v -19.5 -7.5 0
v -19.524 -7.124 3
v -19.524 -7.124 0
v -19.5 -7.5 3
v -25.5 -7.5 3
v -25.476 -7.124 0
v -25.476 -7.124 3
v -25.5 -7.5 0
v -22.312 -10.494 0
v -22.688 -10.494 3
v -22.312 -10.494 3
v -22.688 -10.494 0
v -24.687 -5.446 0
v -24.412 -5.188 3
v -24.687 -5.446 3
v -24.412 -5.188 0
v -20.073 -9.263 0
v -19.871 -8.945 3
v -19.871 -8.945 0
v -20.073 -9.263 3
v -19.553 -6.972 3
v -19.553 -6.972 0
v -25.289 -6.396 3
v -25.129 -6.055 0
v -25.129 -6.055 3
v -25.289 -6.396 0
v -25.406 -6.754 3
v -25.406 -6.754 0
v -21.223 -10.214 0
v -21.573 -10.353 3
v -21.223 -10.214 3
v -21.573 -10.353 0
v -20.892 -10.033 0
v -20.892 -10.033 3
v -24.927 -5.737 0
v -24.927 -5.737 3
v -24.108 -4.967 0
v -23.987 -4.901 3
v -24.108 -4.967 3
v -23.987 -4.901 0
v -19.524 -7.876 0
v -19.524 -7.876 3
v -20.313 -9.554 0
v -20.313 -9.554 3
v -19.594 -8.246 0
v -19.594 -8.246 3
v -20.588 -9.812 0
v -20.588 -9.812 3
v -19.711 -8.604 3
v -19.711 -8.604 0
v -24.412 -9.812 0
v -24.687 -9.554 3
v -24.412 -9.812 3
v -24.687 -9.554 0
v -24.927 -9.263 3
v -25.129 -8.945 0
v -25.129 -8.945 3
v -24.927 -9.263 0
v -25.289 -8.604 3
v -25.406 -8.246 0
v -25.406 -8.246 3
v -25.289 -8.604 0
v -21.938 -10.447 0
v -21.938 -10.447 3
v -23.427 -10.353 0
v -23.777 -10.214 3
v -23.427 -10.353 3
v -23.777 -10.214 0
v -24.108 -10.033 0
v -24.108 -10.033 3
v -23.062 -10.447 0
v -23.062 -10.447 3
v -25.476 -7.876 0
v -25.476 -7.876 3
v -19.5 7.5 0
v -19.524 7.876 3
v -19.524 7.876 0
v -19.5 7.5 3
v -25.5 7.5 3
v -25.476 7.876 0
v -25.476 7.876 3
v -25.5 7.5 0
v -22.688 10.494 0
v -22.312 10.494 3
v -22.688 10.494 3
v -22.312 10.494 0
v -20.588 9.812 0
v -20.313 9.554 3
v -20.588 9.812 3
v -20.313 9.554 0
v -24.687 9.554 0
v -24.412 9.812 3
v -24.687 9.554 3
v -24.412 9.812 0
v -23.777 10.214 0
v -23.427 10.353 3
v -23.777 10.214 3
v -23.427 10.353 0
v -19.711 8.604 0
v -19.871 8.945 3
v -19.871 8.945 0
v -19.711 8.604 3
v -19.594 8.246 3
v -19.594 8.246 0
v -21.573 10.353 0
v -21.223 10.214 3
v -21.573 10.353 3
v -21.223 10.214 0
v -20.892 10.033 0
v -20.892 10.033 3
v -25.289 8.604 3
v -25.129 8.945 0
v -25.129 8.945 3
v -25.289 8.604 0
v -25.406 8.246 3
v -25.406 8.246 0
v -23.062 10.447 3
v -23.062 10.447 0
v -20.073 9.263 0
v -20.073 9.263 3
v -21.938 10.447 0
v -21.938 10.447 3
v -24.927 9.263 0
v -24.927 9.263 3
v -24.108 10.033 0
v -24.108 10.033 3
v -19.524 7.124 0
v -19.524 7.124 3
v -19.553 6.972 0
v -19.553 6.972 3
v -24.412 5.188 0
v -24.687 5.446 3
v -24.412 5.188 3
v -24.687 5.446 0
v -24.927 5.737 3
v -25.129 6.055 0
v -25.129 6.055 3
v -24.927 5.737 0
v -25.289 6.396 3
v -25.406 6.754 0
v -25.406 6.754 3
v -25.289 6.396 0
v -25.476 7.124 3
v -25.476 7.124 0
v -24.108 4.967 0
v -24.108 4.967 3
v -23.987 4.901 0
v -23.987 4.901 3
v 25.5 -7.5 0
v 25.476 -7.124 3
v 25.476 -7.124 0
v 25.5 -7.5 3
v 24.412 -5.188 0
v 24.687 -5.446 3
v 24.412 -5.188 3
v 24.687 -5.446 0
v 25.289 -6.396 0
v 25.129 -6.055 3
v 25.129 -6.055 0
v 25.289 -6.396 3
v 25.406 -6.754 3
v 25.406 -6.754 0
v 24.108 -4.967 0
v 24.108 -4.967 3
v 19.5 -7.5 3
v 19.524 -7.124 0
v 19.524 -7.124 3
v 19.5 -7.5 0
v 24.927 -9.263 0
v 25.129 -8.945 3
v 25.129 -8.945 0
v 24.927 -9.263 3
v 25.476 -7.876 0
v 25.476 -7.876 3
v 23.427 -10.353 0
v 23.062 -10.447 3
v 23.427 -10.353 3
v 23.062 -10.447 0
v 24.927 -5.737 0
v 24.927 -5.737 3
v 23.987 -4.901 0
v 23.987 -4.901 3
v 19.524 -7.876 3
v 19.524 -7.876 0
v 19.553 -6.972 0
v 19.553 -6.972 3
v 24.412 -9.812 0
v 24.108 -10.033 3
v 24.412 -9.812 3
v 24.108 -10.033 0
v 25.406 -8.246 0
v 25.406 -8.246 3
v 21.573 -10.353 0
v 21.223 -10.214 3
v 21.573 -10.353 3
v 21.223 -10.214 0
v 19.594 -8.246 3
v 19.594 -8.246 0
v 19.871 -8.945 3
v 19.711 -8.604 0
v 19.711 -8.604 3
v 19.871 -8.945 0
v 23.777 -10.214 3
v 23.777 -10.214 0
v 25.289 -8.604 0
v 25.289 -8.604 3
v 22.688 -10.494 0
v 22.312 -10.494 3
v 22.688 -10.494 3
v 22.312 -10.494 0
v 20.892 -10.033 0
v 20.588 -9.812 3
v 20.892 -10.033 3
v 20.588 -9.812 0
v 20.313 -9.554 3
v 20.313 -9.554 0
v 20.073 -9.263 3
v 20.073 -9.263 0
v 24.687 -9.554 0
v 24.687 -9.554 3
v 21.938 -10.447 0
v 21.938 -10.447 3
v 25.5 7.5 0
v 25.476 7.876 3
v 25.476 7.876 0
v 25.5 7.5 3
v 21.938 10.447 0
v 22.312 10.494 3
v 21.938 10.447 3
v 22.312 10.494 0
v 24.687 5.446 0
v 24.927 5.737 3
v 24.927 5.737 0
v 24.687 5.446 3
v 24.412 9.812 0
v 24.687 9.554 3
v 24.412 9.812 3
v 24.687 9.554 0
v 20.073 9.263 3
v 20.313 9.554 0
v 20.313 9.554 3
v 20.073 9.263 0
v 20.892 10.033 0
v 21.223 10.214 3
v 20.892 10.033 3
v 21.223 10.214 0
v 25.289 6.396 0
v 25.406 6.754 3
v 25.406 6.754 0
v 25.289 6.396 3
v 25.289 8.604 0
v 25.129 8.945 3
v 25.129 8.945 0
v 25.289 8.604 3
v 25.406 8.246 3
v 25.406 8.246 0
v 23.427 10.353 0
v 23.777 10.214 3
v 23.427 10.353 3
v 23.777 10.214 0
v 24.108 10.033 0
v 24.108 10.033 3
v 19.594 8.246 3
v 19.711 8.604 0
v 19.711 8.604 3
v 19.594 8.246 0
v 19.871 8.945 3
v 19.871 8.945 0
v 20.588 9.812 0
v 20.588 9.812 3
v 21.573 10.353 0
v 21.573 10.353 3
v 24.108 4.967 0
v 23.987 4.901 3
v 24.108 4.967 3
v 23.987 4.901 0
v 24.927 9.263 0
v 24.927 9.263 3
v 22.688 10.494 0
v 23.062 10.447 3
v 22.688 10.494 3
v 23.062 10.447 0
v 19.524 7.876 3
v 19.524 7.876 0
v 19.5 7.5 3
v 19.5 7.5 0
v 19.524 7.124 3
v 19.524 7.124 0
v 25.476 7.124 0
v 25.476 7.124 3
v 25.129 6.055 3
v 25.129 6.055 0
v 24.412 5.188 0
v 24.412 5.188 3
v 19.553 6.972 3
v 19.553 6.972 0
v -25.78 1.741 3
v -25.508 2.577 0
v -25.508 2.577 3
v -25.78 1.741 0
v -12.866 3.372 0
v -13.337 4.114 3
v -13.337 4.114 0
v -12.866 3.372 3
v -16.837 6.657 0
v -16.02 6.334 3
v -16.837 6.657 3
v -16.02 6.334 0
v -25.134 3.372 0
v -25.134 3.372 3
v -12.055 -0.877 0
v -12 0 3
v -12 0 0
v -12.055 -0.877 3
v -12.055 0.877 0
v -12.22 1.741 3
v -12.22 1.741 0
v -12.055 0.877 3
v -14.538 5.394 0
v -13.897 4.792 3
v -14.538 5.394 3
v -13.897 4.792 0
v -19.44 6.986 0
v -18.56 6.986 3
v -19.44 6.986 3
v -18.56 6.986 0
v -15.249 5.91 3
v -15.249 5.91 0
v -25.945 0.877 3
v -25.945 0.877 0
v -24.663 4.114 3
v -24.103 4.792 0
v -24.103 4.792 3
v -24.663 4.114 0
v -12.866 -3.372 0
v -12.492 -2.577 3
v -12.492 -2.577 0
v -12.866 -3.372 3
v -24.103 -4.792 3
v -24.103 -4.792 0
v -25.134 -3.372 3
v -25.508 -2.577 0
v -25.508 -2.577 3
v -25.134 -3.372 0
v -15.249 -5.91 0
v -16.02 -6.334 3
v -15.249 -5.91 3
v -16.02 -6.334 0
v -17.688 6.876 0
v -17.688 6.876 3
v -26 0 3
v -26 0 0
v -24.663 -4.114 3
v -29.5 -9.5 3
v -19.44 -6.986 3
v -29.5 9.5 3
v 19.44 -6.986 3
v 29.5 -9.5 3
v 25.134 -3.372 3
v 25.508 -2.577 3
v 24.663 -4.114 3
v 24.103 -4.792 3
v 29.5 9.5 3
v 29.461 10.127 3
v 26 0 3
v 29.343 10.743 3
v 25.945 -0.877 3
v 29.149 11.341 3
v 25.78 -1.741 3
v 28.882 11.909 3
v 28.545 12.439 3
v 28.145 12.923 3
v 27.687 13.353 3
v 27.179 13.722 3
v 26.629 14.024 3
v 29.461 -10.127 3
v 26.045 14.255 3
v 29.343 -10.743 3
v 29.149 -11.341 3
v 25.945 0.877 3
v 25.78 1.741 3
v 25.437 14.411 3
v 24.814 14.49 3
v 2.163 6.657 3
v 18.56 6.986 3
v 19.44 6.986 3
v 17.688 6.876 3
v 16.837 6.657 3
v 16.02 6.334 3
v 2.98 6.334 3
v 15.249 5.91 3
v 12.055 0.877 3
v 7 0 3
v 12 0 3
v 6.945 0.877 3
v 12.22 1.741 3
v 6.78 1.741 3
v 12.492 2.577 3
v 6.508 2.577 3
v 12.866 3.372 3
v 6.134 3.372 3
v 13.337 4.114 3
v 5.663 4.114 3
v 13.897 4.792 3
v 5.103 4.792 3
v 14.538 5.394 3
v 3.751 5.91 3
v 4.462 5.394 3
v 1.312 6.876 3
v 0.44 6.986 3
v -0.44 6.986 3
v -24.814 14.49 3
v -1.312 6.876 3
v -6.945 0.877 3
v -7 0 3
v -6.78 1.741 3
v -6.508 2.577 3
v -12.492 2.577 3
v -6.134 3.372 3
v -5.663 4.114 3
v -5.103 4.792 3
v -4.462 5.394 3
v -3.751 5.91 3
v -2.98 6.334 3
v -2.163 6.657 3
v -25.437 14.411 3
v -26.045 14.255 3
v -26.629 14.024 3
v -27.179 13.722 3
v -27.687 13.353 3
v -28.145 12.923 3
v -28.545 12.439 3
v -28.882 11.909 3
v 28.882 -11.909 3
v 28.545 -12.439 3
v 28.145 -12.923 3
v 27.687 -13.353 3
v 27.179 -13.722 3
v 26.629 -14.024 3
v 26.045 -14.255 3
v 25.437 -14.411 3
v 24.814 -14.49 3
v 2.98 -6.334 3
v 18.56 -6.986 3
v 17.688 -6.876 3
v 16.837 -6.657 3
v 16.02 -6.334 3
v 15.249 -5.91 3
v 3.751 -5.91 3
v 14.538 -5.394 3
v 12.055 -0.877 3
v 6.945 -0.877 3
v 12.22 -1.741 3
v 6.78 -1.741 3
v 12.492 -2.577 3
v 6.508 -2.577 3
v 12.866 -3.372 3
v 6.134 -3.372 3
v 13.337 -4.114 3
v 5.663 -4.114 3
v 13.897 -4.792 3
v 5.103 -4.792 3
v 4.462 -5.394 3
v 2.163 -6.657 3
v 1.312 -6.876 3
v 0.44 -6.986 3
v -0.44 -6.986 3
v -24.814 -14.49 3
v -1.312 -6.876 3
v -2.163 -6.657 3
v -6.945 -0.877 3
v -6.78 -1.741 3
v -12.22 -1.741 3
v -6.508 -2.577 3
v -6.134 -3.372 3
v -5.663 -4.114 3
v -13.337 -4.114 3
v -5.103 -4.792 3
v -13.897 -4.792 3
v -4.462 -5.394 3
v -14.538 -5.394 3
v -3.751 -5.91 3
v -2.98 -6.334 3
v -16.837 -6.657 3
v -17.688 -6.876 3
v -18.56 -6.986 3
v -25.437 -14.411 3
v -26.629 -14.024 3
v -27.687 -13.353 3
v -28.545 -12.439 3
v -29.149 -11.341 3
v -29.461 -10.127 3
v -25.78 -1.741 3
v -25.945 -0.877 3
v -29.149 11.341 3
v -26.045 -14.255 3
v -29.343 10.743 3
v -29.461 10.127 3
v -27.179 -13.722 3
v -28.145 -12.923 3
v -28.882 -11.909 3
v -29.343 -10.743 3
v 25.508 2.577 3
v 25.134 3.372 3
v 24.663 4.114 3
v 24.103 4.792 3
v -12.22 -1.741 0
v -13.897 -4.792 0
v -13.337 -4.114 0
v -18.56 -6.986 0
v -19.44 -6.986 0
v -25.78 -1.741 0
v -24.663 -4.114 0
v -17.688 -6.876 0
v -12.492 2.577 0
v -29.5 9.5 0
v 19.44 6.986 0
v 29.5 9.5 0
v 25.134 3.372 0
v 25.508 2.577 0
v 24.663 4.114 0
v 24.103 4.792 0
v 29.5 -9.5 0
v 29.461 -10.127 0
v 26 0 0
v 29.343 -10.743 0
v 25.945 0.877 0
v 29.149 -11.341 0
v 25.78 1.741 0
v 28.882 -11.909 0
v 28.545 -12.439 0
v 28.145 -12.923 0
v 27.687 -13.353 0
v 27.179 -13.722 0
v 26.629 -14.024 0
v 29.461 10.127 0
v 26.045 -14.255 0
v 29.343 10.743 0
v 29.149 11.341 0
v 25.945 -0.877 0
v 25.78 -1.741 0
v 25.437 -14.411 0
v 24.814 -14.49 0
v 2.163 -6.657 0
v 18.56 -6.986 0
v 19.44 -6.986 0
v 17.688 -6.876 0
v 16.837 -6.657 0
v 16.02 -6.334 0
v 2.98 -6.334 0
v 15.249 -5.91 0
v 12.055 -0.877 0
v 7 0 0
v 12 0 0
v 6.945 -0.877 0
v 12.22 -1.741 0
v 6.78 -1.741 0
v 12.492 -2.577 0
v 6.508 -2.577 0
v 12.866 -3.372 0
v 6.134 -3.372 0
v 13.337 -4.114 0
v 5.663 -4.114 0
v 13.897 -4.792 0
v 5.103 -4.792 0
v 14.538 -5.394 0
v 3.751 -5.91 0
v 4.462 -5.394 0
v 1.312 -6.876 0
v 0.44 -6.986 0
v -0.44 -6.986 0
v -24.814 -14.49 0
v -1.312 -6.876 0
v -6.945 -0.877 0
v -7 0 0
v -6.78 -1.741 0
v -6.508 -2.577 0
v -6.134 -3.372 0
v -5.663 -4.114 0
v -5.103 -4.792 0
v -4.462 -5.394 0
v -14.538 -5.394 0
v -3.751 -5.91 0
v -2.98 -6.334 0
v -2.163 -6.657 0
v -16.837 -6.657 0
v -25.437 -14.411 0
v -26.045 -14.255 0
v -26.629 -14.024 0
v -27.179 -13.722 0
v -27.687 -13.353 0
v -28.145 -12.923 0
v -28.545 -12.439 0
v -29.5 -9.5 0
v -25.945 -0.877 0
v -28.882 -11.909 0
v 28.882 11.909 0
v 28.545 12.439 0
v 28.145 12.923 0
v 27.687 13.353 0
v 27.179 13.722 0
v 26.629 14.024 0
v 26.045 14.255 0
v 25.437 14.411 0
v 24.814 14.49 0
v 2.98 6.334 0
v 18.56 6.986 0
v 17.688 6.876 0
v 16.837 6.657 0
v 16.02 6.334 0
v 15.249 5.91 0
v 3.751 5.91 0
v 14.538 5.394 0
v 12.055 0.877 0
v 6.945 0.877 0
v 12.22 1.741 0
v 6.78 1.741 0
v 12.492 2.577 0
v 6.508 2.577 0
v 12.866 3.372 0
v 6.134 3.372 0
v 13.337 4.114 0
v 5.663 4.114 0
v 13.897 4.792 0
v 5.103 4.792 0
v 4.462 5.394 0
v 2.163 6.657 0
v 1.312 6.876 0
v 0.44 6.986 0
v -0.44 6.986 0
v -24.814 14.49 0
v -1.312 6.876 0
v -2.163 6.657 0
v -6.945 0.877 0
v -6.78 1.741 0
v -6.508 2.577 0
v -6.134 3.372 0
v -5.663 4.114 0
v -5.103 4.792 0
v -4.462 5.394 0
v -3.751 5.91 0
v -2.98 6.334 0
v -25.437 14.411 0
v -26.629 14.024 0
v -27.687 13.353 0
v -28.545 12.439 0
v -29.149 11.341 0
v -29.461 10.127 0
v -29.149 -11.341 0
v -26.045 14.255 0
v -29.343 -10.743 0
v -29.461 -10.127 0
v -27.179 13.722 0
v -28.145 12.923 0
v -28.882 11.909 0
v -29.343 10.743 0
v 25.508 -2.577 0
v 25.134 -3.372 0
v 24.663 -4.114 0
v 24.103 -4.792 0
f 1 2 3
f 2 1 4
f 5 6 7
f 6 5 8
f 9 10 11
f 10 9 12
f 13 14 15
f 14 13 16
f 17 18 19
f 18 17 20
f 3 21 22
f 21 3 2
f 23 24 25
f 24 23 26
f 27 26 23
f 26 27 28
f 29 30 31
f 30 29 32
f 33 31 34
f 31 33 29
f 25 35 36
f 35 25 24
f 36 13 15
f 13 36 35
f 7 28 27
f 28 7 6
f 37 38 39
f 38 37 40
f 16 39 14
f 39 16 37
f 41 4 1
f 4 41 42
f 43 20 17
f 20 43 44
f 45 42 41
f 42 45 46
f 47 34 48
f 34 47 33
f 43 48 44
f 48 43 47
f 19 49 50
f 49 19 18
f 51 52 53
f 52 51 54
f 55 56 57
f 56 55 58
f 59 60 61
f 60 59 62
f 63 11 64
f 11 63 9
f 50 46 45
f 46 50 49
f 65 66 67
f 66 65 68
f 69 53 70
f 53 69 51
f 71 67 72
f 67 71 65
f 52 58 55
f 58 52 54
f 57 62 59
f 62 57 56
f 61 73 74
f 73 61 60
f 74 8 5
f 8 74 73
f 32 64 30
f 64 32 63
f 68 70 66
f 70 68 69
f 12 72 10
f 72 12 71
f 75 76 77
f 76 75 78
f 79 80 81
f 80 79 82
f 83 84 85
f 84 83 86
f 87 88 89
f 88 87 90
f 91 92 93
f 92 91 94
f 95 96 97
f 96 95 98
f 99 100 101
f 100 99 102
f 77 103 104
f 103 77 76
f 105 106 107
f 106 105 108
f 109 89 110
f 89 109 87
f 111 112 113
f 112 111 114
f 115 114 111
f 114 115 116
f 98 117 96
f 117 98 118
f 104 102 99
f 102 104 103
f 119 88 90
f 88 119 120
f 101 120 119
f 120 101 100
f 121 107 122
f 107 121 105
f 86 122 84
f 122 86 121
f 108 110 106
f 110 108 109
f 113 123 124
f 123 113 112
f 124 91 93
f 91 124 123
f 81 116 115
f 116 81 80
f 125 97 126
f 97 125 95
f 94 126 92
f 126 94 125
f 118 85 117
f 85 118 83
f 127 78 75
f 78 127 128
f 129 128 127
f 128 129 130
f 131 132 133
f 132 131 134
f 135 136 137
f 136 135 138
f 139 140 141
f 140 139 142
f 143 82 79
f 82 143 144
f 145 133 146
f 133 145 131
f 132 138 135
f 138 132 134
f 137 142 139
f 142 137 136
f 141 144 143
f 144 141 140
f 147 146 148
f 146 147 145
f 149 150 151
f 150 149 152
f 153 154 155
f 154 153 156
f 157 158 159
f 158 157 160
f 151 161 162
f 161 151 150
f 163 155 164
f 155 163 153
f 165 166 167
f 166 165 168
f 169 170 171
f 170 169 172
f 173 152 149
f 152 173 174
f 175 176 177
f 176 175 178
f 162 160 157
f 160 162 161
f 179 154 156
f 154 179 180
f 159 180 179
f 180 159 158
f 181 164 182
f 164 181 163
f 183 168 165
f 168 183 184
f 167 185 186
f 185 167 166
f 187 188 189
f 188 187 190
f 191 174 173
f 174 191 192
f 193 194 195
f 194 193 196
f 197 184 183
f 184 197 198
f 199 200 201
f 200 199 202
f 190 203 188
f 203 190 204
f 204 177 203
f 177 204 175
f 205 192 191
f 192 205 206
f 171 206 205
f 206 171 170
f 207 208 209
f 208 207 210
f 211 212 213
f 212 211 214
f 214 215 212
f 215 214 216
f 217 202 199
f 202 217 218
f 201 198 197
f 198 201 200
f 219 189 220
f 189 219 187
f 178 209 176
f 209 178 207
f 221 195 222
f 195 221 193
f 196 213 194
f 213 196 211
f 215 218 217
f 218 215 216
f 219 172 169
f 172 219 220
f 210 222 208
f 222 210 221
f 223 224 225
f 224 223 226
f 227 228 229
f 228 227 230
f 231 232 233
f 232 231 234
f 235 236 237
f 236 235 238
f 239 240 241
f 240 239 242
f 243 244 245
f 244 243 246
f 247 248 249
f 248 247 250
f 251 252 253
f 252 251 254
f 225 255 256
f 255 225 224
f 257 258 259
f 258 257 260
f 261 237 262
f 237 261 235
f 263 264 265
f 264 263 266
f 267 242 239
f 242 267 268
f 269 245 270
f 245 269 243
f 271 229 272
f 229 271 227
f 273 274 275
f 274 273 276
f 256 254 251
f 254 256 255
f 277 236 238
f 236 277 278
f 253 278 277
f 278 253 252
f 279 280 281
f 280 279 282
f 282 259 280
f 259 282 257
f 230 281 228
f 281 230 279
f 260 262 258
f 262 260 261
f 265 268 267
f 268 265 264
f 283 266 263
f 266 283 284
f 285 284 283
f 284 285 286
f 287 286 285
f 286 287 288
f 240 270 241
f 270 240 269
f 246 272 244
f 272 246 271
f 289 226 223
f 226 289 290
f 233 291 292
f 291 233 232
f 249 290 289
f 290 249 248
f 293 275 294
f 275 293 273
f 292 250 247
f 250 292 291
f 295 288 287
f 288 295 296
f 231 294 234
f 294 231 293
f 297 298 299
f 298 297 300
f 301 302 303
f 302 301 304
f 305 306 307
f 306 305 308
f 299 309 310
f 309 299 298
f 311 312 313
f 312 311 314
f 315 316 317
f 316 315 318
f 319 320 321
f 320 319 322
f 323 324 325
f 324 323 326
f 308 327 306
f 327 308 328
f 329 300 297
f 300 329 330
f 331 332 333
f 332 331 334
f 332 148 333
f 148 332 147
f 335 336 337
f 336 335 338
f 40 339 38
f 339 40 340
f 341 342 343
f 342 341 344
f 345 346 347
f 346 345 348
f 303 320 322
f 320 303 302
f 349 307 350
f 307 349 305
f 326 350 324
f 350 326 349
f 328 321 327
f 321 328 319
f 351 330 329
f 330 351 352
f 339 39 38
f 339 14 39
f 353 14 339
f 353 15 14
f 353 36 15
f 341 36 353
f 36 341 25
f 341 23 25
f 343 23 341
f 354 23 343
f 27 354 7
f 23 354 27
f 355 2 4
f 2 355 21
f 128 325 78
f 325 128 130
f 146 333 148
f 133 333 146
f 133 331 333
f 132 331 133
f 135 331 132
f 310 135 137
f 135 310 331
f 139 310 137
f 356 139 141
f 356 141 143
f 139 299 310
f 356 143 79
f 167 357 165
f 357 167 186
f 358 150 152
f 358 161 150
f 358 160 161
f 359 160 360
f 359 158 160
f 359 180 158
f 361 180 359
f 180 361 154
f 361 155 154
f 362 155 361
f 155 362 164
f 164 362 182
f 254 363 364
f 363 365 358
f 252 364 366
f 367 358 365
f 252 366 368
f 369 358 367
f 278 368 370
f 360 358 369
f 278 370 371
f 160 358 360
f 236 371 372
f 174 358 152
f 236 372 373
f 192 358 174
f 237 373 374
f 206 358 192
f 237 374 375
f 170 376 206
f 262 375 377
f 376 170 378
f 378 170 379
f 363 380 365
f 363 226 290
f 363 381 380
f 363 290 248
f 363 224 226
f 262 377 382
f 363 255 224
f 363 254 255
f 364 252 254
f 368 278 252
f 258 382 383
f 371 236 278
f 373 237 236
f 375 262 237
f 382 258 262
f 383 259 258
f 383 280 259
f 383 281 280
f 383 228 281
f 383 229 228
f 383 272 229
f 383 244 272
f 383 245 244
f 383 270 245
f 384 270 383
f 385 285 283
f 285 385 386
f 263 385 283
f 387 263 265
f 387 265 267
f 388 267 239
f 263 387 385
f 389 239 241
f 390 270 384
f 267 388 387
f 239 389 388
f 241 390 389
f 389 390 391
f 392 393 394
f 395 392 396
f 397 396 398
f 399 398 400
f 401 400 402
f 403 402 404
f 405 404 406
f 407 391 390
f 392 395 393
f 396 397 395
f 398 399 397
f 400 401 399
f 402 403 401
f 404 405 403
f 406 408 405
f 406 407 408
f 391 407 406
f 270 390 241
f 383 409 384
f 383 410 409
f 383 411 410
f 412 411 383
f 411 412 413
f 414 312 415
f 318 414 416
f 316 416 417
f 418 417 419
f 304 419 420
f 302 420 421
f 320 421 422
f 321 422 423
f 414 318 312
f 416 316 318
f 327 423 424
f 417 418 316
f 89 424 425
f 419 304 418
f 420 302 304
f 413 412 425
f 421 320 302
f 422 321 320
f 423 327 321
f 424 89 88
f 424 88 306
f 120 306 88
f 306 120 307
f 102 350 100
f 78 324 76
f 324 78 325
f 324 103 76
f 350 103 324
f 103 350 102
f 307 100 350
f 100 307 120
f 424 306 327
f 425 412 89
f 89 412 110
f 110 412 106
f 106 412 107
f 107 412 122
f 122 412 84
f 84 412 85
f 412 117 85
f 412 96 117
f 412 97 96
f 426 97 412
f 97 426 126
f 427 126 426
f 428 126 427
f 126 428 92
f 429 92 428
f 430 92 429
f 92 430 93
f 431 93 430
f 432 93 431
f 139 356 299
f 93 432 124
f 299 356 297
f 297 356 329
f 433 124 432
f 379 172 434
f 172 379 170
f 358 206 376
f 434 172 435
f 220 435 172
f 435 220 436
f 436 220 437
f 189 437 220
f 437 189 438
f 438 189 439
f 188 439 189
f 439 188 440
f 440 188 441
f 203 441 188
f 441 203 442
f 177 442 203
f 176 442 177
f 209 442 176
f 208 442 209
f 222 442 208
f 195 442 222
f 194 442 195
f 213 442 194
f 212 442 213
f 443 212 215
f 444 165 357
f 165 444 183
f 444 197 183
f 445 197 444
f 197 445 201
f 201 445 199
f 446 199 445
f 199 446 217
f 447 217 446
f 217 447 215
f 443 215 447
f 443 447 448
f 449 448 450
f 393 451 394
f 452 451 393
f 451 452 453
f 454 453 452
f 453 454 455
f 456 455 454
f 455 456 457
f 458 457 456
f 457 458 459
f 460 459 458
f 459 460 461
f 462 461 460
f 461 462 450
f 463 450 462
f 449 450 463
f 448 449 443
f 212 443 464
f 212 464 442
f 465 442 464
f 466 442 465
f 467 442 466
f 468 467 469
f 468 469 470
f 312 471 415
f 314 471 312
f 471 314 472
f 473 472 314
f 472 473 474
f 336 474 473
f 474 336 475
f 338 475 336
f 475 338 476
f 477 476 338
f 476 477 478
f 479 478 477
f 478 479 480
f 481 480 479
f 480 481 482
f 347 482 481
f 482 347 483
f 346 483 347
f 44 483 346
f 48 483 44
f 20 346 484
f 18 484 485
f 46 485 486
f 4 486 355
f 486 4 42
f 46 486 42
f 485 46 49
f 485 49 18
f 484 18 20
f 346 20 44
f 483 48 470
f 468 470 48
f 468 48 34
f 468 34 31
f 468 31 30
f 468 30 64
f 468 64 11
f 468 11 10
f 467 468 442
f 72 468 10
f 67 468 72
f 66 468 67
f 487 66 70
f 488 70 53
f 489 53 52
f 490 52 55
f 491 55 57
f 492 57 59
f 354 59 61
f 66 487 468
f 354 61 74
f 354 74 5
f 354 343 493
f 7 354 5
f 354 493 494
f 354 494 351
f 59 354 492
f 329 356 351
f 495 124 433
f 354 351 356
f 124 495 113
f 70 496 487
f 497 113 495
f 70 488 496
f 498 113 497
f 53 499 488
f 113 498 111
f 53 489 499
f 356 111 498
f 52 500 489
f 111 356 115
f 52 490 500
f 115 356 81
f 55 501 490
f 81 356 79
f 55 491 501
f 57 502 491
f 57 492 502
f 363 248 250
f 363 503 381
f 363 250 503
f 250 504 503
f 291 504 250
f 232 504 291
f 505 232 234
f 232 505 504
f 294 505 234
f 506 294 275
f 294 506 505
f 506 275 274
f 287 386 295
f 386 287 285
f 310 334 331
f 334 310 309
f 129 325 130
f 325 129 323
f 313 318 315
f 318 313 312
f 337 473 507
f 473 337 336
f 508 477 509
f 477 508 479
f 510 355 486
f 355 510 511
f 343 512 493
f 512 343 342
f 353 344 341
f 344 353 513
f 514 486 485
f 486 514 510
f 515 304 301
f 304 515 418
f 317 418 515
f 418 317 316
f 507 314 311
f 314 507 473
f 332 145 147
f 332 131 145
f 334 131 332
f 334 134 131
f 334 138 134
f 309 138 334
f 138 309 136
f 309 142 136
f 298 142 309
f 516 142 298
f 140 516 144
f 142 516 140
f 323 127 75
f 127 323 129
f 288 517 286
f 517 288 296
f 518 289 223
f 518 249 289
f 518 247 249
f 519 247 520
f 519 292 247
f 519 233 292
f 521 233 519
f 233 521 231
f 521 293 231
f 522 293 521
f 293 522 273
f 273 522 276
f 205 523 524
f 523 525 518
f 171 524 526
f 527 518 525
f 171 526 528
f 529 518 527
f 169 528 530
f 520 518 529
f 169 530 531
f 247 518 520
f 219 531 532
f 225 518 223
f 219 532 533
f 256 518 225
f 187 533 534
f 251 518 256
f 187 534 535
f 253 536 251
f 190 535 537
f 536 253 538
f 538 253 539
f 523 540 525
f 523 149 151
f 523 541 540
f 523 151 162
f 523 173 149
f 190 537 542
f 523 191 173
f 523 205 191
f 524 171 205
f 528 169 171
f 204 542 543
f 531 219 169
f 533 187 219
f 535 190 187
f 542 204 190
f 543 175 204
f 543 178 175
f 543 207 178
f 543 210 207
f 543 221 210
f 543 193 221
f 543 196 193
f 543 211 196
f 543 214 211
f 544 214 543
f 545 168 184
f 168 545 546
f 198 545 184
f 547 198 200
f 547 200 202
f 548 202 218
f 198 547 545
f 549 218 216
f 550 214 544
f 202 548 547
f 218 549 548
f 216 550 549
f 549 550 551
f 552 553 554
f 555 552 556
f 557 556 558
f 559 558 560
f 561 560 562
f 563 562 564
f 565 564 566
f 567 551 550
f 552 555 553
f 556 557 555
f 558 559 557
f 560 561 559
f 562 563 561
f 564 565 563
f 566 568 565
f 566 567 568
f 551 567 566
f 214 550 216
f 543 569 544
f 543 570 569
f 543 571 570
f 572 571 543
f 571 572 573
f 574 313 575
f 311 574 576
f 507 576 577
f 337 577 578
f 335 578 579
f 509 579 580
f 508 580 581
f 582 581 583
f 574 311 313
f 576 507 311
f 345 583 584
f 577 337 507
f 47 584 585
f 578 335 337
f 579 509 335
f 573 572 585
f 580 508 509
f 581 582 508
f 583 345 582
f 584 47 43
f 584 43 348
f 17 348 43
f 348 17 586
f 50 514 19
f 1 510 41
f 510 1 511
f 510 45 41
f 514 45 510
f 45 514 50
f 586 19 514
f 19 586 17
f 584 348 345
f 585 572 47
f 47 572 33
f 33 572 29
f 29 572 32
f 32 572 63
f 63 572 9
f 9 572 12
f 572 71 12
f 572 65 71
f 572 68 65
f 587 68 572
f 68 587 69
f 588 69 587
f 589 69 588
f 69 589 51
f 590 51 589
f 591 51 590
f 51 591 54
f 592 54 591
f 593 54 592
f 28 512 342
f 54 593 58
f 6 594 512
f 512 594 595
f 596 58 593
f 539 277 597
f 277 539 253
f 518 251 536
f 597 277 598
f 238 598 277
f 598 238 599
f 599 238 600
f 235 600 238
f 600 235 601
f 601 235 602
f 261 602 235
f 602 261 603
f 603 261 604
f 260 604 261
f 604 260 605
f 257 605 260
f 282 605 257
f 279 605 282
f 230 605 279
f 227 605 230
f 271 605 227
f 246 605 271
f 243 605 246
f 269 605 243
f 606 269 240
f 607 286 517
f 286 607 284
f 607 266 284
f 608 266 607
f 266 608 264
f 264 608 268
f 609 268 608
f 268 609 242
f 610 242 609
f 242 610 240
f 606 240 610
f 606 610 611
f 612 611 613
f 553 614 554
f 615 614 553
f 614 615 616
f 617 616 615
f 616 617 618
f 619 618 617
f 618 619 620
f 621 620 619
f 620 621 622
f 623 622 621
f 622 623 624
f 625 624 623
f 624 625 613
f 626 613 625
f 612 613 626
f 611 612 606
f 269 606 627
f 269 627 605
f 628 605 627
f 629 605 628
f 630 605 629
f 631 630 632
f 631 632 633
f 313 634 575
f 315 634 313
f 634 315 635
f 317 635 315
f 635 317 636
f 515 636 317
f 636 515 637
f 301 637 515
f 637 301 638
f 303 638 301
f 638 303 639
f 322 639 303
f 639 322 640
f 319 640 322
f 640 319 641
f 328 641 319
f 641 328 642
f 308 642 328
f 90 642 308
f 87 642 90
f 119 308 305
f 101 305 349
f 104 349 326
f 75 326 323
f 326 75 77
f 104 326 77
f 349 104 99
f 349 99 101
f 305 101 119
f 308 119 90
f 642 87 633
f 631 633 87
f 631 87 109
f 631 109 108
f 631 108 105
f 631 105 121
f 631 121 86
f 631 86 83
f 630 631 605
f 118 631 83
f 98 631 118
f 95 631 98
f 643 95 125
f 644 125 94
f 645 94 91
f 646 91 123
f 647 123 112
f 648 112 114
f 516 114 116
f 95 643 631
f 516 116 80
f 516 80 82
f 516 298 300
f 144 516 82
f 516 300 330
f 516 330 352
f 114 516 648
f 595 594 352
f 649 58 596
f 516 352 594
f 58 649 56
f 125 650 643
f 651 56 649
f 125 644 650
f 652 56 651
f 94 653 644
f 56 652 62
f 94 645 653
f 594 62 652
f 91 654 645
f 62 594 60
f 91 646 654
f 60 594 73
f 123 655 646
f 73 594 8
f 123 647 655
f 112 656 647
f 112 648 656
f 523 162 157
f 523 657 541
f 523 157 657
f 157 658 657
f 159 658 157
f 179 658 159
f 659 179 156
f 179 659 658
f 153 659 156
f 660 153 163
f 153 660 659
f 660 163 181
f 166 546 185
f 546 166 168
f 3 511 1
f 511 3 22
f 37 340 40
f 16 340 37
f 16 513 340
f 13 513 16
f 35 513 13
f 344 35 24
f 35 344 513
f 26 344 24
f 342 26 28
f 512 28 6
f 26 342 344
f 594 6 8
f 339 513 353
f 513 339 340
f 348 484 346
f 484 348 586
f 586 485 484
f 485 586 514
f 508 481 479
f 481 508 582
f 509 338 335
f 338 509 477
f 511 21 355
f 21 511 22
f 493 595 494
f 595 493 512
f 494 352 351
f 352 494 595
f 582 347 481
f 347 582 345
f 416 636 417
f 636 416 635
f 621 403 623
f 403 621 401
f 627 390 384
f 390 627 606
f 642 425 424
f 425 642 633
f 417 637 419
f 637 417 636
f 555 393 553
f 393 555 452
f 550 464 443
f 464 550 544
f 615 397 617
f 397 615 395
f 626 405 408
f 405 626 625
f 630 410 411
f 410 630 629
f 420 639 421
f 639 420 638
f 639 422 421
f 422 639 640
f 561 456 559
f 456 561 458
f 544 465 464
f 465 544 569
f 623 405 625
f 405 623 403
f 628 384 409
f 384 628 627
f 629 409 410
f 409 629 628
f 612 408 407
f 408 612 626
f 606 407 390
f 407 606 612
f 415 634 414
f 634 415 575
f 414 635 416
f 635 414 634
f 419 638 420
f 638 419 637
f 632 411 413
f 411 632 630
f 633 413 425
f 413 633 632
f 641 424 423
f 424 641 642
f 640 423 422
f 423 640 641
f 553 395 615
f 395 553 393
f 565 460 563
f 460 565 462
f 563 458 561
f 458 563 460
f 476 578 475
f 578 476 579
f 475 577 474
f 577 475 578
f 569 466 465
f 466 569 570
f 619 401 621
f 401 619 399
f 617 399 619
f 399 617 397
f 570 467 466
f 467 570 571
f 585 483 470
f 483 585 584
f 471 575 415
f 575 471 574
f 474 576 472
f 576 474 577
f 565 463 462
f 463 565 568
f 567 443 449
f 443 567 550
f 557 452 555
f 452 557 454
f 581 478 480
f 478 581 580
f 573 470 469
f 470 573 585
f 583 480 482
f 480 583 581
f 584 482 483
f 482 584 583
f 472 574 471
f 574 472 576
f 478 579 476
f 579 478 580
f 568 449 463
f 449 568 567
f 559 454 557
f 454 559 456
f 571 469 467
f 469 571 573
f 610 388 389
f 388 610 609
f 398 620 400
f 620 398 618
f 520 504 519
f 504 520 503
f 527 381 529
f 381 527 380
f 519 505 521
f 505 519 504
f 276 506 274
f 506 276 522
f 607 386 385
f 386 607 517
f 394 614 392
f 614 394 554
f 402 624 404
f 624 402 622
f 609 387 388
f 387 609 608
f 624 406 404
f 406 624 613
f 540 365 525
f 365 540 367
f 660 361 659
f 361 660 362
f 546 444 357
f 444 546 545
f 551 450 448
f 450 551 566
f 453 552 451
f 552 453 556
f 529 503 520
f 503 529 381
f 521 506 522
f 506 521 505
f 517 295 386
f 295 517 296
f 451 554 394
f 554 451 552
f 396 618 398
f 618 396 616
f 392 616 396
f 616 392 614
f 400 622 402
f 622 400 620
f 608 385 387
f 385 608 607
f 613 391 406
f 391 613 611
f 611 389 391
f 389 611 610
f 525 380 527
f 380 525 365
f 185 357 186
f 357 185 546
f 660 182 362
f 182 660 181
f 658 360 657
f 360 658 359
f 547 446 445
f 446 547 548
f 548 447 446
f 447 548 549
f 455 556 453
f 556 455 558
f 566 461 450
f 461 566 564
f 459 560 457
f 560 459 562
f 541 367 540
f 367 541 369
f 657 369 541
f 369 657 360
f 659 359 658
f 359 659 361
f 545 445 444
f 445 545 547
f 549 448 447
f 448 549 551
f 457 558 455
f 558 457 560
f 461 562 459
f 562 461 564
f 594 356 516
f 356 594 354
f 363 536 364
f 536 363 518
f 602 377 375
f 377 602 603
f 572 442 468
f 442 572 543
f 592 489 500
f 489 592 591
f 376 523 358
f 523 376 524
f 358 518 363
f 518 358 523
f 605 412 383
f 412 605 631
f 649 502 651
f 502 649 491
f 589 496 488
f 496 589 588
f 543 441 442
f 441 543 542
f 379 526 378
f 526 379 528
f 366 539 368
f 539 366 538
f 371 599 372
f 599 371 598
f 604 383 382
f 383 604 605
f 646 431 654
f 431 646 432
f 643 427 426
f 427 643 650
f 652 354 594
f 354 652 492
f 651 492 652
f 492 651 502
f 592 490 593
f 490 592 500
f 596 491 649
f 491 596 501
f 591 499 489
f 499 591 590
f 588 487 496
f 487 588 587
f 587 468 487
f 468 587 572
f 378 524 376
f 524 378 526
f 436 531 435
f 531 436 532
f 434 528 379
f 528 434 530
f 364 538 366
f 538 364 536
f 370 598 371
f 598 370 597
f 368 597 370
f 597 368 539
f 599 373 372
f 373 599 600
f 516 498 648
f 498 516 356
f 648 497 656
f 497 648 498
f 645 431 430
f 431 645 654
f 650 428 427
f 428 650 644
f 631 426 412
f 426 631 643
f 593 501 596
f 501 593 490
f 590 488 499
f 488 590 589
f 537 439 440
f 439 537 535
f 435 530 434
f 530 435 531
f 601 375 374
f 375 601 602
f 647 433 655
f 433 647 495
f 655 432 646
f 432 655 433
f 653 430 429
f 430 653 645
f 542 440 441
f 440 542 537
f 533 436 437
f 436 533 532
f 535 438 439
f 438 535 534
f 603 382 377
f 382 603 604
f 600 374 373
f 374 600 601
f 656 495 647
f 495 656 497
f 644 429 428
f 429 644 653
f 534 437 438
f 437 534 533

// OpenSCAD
$fn = 50;


difference() {
	union() {
		hull() {
			translate(v = [-24.5000000000, 9.5000000000, 0]) {
				cylinder(h = 3, r = 5);
			}
			translate(v = [24.5000000000, 9.5000000000, 0]) {
				cylinder(h = 3, r = 5);
			}
			translate(v = [-24.5000000000, -9.5000000000, 0]) {
				cylinder(h = 3, r = 5);
			}
			translate(v = [24.5000000000, -9.5000000000, 0]) {
				cylinder(h = 3, r = 5);
			}
		}
	}
	union() {
		#translate(v = [-22.5000000000, -7.5000000000, -100.0000000000]) {
			cylinder(h = 200, r = 3.0000000000);
		}
		#translate(v = [-22.5000000000, 7.5000000000, -100.0000000000]) {
			cylinder(h = 200, r = 3.0000000000);
		}
		#translate(v = [22.5000000000, -7.5000000000, -100.0000000000]) {
			cylinder(h = 200, r = 3.0000000000);
		}
		#translate(v = [22.5000000000, 7.5000000000, -100.0000000000]) {
			cylinder(h = 200, r = 3.0000000000);
		}
		#translate(v = [-19.0000000000, 0, 0]) {
			cylinder(h = 3, r = 7.0000000000);
		}
		#cylinder(h = 3, r = 7.0000000000);
		#translate(v = [19.0000000000, 0, 0]) {
			cylinder(h = 3, r = 7.0000000000);
		}
	}
}
